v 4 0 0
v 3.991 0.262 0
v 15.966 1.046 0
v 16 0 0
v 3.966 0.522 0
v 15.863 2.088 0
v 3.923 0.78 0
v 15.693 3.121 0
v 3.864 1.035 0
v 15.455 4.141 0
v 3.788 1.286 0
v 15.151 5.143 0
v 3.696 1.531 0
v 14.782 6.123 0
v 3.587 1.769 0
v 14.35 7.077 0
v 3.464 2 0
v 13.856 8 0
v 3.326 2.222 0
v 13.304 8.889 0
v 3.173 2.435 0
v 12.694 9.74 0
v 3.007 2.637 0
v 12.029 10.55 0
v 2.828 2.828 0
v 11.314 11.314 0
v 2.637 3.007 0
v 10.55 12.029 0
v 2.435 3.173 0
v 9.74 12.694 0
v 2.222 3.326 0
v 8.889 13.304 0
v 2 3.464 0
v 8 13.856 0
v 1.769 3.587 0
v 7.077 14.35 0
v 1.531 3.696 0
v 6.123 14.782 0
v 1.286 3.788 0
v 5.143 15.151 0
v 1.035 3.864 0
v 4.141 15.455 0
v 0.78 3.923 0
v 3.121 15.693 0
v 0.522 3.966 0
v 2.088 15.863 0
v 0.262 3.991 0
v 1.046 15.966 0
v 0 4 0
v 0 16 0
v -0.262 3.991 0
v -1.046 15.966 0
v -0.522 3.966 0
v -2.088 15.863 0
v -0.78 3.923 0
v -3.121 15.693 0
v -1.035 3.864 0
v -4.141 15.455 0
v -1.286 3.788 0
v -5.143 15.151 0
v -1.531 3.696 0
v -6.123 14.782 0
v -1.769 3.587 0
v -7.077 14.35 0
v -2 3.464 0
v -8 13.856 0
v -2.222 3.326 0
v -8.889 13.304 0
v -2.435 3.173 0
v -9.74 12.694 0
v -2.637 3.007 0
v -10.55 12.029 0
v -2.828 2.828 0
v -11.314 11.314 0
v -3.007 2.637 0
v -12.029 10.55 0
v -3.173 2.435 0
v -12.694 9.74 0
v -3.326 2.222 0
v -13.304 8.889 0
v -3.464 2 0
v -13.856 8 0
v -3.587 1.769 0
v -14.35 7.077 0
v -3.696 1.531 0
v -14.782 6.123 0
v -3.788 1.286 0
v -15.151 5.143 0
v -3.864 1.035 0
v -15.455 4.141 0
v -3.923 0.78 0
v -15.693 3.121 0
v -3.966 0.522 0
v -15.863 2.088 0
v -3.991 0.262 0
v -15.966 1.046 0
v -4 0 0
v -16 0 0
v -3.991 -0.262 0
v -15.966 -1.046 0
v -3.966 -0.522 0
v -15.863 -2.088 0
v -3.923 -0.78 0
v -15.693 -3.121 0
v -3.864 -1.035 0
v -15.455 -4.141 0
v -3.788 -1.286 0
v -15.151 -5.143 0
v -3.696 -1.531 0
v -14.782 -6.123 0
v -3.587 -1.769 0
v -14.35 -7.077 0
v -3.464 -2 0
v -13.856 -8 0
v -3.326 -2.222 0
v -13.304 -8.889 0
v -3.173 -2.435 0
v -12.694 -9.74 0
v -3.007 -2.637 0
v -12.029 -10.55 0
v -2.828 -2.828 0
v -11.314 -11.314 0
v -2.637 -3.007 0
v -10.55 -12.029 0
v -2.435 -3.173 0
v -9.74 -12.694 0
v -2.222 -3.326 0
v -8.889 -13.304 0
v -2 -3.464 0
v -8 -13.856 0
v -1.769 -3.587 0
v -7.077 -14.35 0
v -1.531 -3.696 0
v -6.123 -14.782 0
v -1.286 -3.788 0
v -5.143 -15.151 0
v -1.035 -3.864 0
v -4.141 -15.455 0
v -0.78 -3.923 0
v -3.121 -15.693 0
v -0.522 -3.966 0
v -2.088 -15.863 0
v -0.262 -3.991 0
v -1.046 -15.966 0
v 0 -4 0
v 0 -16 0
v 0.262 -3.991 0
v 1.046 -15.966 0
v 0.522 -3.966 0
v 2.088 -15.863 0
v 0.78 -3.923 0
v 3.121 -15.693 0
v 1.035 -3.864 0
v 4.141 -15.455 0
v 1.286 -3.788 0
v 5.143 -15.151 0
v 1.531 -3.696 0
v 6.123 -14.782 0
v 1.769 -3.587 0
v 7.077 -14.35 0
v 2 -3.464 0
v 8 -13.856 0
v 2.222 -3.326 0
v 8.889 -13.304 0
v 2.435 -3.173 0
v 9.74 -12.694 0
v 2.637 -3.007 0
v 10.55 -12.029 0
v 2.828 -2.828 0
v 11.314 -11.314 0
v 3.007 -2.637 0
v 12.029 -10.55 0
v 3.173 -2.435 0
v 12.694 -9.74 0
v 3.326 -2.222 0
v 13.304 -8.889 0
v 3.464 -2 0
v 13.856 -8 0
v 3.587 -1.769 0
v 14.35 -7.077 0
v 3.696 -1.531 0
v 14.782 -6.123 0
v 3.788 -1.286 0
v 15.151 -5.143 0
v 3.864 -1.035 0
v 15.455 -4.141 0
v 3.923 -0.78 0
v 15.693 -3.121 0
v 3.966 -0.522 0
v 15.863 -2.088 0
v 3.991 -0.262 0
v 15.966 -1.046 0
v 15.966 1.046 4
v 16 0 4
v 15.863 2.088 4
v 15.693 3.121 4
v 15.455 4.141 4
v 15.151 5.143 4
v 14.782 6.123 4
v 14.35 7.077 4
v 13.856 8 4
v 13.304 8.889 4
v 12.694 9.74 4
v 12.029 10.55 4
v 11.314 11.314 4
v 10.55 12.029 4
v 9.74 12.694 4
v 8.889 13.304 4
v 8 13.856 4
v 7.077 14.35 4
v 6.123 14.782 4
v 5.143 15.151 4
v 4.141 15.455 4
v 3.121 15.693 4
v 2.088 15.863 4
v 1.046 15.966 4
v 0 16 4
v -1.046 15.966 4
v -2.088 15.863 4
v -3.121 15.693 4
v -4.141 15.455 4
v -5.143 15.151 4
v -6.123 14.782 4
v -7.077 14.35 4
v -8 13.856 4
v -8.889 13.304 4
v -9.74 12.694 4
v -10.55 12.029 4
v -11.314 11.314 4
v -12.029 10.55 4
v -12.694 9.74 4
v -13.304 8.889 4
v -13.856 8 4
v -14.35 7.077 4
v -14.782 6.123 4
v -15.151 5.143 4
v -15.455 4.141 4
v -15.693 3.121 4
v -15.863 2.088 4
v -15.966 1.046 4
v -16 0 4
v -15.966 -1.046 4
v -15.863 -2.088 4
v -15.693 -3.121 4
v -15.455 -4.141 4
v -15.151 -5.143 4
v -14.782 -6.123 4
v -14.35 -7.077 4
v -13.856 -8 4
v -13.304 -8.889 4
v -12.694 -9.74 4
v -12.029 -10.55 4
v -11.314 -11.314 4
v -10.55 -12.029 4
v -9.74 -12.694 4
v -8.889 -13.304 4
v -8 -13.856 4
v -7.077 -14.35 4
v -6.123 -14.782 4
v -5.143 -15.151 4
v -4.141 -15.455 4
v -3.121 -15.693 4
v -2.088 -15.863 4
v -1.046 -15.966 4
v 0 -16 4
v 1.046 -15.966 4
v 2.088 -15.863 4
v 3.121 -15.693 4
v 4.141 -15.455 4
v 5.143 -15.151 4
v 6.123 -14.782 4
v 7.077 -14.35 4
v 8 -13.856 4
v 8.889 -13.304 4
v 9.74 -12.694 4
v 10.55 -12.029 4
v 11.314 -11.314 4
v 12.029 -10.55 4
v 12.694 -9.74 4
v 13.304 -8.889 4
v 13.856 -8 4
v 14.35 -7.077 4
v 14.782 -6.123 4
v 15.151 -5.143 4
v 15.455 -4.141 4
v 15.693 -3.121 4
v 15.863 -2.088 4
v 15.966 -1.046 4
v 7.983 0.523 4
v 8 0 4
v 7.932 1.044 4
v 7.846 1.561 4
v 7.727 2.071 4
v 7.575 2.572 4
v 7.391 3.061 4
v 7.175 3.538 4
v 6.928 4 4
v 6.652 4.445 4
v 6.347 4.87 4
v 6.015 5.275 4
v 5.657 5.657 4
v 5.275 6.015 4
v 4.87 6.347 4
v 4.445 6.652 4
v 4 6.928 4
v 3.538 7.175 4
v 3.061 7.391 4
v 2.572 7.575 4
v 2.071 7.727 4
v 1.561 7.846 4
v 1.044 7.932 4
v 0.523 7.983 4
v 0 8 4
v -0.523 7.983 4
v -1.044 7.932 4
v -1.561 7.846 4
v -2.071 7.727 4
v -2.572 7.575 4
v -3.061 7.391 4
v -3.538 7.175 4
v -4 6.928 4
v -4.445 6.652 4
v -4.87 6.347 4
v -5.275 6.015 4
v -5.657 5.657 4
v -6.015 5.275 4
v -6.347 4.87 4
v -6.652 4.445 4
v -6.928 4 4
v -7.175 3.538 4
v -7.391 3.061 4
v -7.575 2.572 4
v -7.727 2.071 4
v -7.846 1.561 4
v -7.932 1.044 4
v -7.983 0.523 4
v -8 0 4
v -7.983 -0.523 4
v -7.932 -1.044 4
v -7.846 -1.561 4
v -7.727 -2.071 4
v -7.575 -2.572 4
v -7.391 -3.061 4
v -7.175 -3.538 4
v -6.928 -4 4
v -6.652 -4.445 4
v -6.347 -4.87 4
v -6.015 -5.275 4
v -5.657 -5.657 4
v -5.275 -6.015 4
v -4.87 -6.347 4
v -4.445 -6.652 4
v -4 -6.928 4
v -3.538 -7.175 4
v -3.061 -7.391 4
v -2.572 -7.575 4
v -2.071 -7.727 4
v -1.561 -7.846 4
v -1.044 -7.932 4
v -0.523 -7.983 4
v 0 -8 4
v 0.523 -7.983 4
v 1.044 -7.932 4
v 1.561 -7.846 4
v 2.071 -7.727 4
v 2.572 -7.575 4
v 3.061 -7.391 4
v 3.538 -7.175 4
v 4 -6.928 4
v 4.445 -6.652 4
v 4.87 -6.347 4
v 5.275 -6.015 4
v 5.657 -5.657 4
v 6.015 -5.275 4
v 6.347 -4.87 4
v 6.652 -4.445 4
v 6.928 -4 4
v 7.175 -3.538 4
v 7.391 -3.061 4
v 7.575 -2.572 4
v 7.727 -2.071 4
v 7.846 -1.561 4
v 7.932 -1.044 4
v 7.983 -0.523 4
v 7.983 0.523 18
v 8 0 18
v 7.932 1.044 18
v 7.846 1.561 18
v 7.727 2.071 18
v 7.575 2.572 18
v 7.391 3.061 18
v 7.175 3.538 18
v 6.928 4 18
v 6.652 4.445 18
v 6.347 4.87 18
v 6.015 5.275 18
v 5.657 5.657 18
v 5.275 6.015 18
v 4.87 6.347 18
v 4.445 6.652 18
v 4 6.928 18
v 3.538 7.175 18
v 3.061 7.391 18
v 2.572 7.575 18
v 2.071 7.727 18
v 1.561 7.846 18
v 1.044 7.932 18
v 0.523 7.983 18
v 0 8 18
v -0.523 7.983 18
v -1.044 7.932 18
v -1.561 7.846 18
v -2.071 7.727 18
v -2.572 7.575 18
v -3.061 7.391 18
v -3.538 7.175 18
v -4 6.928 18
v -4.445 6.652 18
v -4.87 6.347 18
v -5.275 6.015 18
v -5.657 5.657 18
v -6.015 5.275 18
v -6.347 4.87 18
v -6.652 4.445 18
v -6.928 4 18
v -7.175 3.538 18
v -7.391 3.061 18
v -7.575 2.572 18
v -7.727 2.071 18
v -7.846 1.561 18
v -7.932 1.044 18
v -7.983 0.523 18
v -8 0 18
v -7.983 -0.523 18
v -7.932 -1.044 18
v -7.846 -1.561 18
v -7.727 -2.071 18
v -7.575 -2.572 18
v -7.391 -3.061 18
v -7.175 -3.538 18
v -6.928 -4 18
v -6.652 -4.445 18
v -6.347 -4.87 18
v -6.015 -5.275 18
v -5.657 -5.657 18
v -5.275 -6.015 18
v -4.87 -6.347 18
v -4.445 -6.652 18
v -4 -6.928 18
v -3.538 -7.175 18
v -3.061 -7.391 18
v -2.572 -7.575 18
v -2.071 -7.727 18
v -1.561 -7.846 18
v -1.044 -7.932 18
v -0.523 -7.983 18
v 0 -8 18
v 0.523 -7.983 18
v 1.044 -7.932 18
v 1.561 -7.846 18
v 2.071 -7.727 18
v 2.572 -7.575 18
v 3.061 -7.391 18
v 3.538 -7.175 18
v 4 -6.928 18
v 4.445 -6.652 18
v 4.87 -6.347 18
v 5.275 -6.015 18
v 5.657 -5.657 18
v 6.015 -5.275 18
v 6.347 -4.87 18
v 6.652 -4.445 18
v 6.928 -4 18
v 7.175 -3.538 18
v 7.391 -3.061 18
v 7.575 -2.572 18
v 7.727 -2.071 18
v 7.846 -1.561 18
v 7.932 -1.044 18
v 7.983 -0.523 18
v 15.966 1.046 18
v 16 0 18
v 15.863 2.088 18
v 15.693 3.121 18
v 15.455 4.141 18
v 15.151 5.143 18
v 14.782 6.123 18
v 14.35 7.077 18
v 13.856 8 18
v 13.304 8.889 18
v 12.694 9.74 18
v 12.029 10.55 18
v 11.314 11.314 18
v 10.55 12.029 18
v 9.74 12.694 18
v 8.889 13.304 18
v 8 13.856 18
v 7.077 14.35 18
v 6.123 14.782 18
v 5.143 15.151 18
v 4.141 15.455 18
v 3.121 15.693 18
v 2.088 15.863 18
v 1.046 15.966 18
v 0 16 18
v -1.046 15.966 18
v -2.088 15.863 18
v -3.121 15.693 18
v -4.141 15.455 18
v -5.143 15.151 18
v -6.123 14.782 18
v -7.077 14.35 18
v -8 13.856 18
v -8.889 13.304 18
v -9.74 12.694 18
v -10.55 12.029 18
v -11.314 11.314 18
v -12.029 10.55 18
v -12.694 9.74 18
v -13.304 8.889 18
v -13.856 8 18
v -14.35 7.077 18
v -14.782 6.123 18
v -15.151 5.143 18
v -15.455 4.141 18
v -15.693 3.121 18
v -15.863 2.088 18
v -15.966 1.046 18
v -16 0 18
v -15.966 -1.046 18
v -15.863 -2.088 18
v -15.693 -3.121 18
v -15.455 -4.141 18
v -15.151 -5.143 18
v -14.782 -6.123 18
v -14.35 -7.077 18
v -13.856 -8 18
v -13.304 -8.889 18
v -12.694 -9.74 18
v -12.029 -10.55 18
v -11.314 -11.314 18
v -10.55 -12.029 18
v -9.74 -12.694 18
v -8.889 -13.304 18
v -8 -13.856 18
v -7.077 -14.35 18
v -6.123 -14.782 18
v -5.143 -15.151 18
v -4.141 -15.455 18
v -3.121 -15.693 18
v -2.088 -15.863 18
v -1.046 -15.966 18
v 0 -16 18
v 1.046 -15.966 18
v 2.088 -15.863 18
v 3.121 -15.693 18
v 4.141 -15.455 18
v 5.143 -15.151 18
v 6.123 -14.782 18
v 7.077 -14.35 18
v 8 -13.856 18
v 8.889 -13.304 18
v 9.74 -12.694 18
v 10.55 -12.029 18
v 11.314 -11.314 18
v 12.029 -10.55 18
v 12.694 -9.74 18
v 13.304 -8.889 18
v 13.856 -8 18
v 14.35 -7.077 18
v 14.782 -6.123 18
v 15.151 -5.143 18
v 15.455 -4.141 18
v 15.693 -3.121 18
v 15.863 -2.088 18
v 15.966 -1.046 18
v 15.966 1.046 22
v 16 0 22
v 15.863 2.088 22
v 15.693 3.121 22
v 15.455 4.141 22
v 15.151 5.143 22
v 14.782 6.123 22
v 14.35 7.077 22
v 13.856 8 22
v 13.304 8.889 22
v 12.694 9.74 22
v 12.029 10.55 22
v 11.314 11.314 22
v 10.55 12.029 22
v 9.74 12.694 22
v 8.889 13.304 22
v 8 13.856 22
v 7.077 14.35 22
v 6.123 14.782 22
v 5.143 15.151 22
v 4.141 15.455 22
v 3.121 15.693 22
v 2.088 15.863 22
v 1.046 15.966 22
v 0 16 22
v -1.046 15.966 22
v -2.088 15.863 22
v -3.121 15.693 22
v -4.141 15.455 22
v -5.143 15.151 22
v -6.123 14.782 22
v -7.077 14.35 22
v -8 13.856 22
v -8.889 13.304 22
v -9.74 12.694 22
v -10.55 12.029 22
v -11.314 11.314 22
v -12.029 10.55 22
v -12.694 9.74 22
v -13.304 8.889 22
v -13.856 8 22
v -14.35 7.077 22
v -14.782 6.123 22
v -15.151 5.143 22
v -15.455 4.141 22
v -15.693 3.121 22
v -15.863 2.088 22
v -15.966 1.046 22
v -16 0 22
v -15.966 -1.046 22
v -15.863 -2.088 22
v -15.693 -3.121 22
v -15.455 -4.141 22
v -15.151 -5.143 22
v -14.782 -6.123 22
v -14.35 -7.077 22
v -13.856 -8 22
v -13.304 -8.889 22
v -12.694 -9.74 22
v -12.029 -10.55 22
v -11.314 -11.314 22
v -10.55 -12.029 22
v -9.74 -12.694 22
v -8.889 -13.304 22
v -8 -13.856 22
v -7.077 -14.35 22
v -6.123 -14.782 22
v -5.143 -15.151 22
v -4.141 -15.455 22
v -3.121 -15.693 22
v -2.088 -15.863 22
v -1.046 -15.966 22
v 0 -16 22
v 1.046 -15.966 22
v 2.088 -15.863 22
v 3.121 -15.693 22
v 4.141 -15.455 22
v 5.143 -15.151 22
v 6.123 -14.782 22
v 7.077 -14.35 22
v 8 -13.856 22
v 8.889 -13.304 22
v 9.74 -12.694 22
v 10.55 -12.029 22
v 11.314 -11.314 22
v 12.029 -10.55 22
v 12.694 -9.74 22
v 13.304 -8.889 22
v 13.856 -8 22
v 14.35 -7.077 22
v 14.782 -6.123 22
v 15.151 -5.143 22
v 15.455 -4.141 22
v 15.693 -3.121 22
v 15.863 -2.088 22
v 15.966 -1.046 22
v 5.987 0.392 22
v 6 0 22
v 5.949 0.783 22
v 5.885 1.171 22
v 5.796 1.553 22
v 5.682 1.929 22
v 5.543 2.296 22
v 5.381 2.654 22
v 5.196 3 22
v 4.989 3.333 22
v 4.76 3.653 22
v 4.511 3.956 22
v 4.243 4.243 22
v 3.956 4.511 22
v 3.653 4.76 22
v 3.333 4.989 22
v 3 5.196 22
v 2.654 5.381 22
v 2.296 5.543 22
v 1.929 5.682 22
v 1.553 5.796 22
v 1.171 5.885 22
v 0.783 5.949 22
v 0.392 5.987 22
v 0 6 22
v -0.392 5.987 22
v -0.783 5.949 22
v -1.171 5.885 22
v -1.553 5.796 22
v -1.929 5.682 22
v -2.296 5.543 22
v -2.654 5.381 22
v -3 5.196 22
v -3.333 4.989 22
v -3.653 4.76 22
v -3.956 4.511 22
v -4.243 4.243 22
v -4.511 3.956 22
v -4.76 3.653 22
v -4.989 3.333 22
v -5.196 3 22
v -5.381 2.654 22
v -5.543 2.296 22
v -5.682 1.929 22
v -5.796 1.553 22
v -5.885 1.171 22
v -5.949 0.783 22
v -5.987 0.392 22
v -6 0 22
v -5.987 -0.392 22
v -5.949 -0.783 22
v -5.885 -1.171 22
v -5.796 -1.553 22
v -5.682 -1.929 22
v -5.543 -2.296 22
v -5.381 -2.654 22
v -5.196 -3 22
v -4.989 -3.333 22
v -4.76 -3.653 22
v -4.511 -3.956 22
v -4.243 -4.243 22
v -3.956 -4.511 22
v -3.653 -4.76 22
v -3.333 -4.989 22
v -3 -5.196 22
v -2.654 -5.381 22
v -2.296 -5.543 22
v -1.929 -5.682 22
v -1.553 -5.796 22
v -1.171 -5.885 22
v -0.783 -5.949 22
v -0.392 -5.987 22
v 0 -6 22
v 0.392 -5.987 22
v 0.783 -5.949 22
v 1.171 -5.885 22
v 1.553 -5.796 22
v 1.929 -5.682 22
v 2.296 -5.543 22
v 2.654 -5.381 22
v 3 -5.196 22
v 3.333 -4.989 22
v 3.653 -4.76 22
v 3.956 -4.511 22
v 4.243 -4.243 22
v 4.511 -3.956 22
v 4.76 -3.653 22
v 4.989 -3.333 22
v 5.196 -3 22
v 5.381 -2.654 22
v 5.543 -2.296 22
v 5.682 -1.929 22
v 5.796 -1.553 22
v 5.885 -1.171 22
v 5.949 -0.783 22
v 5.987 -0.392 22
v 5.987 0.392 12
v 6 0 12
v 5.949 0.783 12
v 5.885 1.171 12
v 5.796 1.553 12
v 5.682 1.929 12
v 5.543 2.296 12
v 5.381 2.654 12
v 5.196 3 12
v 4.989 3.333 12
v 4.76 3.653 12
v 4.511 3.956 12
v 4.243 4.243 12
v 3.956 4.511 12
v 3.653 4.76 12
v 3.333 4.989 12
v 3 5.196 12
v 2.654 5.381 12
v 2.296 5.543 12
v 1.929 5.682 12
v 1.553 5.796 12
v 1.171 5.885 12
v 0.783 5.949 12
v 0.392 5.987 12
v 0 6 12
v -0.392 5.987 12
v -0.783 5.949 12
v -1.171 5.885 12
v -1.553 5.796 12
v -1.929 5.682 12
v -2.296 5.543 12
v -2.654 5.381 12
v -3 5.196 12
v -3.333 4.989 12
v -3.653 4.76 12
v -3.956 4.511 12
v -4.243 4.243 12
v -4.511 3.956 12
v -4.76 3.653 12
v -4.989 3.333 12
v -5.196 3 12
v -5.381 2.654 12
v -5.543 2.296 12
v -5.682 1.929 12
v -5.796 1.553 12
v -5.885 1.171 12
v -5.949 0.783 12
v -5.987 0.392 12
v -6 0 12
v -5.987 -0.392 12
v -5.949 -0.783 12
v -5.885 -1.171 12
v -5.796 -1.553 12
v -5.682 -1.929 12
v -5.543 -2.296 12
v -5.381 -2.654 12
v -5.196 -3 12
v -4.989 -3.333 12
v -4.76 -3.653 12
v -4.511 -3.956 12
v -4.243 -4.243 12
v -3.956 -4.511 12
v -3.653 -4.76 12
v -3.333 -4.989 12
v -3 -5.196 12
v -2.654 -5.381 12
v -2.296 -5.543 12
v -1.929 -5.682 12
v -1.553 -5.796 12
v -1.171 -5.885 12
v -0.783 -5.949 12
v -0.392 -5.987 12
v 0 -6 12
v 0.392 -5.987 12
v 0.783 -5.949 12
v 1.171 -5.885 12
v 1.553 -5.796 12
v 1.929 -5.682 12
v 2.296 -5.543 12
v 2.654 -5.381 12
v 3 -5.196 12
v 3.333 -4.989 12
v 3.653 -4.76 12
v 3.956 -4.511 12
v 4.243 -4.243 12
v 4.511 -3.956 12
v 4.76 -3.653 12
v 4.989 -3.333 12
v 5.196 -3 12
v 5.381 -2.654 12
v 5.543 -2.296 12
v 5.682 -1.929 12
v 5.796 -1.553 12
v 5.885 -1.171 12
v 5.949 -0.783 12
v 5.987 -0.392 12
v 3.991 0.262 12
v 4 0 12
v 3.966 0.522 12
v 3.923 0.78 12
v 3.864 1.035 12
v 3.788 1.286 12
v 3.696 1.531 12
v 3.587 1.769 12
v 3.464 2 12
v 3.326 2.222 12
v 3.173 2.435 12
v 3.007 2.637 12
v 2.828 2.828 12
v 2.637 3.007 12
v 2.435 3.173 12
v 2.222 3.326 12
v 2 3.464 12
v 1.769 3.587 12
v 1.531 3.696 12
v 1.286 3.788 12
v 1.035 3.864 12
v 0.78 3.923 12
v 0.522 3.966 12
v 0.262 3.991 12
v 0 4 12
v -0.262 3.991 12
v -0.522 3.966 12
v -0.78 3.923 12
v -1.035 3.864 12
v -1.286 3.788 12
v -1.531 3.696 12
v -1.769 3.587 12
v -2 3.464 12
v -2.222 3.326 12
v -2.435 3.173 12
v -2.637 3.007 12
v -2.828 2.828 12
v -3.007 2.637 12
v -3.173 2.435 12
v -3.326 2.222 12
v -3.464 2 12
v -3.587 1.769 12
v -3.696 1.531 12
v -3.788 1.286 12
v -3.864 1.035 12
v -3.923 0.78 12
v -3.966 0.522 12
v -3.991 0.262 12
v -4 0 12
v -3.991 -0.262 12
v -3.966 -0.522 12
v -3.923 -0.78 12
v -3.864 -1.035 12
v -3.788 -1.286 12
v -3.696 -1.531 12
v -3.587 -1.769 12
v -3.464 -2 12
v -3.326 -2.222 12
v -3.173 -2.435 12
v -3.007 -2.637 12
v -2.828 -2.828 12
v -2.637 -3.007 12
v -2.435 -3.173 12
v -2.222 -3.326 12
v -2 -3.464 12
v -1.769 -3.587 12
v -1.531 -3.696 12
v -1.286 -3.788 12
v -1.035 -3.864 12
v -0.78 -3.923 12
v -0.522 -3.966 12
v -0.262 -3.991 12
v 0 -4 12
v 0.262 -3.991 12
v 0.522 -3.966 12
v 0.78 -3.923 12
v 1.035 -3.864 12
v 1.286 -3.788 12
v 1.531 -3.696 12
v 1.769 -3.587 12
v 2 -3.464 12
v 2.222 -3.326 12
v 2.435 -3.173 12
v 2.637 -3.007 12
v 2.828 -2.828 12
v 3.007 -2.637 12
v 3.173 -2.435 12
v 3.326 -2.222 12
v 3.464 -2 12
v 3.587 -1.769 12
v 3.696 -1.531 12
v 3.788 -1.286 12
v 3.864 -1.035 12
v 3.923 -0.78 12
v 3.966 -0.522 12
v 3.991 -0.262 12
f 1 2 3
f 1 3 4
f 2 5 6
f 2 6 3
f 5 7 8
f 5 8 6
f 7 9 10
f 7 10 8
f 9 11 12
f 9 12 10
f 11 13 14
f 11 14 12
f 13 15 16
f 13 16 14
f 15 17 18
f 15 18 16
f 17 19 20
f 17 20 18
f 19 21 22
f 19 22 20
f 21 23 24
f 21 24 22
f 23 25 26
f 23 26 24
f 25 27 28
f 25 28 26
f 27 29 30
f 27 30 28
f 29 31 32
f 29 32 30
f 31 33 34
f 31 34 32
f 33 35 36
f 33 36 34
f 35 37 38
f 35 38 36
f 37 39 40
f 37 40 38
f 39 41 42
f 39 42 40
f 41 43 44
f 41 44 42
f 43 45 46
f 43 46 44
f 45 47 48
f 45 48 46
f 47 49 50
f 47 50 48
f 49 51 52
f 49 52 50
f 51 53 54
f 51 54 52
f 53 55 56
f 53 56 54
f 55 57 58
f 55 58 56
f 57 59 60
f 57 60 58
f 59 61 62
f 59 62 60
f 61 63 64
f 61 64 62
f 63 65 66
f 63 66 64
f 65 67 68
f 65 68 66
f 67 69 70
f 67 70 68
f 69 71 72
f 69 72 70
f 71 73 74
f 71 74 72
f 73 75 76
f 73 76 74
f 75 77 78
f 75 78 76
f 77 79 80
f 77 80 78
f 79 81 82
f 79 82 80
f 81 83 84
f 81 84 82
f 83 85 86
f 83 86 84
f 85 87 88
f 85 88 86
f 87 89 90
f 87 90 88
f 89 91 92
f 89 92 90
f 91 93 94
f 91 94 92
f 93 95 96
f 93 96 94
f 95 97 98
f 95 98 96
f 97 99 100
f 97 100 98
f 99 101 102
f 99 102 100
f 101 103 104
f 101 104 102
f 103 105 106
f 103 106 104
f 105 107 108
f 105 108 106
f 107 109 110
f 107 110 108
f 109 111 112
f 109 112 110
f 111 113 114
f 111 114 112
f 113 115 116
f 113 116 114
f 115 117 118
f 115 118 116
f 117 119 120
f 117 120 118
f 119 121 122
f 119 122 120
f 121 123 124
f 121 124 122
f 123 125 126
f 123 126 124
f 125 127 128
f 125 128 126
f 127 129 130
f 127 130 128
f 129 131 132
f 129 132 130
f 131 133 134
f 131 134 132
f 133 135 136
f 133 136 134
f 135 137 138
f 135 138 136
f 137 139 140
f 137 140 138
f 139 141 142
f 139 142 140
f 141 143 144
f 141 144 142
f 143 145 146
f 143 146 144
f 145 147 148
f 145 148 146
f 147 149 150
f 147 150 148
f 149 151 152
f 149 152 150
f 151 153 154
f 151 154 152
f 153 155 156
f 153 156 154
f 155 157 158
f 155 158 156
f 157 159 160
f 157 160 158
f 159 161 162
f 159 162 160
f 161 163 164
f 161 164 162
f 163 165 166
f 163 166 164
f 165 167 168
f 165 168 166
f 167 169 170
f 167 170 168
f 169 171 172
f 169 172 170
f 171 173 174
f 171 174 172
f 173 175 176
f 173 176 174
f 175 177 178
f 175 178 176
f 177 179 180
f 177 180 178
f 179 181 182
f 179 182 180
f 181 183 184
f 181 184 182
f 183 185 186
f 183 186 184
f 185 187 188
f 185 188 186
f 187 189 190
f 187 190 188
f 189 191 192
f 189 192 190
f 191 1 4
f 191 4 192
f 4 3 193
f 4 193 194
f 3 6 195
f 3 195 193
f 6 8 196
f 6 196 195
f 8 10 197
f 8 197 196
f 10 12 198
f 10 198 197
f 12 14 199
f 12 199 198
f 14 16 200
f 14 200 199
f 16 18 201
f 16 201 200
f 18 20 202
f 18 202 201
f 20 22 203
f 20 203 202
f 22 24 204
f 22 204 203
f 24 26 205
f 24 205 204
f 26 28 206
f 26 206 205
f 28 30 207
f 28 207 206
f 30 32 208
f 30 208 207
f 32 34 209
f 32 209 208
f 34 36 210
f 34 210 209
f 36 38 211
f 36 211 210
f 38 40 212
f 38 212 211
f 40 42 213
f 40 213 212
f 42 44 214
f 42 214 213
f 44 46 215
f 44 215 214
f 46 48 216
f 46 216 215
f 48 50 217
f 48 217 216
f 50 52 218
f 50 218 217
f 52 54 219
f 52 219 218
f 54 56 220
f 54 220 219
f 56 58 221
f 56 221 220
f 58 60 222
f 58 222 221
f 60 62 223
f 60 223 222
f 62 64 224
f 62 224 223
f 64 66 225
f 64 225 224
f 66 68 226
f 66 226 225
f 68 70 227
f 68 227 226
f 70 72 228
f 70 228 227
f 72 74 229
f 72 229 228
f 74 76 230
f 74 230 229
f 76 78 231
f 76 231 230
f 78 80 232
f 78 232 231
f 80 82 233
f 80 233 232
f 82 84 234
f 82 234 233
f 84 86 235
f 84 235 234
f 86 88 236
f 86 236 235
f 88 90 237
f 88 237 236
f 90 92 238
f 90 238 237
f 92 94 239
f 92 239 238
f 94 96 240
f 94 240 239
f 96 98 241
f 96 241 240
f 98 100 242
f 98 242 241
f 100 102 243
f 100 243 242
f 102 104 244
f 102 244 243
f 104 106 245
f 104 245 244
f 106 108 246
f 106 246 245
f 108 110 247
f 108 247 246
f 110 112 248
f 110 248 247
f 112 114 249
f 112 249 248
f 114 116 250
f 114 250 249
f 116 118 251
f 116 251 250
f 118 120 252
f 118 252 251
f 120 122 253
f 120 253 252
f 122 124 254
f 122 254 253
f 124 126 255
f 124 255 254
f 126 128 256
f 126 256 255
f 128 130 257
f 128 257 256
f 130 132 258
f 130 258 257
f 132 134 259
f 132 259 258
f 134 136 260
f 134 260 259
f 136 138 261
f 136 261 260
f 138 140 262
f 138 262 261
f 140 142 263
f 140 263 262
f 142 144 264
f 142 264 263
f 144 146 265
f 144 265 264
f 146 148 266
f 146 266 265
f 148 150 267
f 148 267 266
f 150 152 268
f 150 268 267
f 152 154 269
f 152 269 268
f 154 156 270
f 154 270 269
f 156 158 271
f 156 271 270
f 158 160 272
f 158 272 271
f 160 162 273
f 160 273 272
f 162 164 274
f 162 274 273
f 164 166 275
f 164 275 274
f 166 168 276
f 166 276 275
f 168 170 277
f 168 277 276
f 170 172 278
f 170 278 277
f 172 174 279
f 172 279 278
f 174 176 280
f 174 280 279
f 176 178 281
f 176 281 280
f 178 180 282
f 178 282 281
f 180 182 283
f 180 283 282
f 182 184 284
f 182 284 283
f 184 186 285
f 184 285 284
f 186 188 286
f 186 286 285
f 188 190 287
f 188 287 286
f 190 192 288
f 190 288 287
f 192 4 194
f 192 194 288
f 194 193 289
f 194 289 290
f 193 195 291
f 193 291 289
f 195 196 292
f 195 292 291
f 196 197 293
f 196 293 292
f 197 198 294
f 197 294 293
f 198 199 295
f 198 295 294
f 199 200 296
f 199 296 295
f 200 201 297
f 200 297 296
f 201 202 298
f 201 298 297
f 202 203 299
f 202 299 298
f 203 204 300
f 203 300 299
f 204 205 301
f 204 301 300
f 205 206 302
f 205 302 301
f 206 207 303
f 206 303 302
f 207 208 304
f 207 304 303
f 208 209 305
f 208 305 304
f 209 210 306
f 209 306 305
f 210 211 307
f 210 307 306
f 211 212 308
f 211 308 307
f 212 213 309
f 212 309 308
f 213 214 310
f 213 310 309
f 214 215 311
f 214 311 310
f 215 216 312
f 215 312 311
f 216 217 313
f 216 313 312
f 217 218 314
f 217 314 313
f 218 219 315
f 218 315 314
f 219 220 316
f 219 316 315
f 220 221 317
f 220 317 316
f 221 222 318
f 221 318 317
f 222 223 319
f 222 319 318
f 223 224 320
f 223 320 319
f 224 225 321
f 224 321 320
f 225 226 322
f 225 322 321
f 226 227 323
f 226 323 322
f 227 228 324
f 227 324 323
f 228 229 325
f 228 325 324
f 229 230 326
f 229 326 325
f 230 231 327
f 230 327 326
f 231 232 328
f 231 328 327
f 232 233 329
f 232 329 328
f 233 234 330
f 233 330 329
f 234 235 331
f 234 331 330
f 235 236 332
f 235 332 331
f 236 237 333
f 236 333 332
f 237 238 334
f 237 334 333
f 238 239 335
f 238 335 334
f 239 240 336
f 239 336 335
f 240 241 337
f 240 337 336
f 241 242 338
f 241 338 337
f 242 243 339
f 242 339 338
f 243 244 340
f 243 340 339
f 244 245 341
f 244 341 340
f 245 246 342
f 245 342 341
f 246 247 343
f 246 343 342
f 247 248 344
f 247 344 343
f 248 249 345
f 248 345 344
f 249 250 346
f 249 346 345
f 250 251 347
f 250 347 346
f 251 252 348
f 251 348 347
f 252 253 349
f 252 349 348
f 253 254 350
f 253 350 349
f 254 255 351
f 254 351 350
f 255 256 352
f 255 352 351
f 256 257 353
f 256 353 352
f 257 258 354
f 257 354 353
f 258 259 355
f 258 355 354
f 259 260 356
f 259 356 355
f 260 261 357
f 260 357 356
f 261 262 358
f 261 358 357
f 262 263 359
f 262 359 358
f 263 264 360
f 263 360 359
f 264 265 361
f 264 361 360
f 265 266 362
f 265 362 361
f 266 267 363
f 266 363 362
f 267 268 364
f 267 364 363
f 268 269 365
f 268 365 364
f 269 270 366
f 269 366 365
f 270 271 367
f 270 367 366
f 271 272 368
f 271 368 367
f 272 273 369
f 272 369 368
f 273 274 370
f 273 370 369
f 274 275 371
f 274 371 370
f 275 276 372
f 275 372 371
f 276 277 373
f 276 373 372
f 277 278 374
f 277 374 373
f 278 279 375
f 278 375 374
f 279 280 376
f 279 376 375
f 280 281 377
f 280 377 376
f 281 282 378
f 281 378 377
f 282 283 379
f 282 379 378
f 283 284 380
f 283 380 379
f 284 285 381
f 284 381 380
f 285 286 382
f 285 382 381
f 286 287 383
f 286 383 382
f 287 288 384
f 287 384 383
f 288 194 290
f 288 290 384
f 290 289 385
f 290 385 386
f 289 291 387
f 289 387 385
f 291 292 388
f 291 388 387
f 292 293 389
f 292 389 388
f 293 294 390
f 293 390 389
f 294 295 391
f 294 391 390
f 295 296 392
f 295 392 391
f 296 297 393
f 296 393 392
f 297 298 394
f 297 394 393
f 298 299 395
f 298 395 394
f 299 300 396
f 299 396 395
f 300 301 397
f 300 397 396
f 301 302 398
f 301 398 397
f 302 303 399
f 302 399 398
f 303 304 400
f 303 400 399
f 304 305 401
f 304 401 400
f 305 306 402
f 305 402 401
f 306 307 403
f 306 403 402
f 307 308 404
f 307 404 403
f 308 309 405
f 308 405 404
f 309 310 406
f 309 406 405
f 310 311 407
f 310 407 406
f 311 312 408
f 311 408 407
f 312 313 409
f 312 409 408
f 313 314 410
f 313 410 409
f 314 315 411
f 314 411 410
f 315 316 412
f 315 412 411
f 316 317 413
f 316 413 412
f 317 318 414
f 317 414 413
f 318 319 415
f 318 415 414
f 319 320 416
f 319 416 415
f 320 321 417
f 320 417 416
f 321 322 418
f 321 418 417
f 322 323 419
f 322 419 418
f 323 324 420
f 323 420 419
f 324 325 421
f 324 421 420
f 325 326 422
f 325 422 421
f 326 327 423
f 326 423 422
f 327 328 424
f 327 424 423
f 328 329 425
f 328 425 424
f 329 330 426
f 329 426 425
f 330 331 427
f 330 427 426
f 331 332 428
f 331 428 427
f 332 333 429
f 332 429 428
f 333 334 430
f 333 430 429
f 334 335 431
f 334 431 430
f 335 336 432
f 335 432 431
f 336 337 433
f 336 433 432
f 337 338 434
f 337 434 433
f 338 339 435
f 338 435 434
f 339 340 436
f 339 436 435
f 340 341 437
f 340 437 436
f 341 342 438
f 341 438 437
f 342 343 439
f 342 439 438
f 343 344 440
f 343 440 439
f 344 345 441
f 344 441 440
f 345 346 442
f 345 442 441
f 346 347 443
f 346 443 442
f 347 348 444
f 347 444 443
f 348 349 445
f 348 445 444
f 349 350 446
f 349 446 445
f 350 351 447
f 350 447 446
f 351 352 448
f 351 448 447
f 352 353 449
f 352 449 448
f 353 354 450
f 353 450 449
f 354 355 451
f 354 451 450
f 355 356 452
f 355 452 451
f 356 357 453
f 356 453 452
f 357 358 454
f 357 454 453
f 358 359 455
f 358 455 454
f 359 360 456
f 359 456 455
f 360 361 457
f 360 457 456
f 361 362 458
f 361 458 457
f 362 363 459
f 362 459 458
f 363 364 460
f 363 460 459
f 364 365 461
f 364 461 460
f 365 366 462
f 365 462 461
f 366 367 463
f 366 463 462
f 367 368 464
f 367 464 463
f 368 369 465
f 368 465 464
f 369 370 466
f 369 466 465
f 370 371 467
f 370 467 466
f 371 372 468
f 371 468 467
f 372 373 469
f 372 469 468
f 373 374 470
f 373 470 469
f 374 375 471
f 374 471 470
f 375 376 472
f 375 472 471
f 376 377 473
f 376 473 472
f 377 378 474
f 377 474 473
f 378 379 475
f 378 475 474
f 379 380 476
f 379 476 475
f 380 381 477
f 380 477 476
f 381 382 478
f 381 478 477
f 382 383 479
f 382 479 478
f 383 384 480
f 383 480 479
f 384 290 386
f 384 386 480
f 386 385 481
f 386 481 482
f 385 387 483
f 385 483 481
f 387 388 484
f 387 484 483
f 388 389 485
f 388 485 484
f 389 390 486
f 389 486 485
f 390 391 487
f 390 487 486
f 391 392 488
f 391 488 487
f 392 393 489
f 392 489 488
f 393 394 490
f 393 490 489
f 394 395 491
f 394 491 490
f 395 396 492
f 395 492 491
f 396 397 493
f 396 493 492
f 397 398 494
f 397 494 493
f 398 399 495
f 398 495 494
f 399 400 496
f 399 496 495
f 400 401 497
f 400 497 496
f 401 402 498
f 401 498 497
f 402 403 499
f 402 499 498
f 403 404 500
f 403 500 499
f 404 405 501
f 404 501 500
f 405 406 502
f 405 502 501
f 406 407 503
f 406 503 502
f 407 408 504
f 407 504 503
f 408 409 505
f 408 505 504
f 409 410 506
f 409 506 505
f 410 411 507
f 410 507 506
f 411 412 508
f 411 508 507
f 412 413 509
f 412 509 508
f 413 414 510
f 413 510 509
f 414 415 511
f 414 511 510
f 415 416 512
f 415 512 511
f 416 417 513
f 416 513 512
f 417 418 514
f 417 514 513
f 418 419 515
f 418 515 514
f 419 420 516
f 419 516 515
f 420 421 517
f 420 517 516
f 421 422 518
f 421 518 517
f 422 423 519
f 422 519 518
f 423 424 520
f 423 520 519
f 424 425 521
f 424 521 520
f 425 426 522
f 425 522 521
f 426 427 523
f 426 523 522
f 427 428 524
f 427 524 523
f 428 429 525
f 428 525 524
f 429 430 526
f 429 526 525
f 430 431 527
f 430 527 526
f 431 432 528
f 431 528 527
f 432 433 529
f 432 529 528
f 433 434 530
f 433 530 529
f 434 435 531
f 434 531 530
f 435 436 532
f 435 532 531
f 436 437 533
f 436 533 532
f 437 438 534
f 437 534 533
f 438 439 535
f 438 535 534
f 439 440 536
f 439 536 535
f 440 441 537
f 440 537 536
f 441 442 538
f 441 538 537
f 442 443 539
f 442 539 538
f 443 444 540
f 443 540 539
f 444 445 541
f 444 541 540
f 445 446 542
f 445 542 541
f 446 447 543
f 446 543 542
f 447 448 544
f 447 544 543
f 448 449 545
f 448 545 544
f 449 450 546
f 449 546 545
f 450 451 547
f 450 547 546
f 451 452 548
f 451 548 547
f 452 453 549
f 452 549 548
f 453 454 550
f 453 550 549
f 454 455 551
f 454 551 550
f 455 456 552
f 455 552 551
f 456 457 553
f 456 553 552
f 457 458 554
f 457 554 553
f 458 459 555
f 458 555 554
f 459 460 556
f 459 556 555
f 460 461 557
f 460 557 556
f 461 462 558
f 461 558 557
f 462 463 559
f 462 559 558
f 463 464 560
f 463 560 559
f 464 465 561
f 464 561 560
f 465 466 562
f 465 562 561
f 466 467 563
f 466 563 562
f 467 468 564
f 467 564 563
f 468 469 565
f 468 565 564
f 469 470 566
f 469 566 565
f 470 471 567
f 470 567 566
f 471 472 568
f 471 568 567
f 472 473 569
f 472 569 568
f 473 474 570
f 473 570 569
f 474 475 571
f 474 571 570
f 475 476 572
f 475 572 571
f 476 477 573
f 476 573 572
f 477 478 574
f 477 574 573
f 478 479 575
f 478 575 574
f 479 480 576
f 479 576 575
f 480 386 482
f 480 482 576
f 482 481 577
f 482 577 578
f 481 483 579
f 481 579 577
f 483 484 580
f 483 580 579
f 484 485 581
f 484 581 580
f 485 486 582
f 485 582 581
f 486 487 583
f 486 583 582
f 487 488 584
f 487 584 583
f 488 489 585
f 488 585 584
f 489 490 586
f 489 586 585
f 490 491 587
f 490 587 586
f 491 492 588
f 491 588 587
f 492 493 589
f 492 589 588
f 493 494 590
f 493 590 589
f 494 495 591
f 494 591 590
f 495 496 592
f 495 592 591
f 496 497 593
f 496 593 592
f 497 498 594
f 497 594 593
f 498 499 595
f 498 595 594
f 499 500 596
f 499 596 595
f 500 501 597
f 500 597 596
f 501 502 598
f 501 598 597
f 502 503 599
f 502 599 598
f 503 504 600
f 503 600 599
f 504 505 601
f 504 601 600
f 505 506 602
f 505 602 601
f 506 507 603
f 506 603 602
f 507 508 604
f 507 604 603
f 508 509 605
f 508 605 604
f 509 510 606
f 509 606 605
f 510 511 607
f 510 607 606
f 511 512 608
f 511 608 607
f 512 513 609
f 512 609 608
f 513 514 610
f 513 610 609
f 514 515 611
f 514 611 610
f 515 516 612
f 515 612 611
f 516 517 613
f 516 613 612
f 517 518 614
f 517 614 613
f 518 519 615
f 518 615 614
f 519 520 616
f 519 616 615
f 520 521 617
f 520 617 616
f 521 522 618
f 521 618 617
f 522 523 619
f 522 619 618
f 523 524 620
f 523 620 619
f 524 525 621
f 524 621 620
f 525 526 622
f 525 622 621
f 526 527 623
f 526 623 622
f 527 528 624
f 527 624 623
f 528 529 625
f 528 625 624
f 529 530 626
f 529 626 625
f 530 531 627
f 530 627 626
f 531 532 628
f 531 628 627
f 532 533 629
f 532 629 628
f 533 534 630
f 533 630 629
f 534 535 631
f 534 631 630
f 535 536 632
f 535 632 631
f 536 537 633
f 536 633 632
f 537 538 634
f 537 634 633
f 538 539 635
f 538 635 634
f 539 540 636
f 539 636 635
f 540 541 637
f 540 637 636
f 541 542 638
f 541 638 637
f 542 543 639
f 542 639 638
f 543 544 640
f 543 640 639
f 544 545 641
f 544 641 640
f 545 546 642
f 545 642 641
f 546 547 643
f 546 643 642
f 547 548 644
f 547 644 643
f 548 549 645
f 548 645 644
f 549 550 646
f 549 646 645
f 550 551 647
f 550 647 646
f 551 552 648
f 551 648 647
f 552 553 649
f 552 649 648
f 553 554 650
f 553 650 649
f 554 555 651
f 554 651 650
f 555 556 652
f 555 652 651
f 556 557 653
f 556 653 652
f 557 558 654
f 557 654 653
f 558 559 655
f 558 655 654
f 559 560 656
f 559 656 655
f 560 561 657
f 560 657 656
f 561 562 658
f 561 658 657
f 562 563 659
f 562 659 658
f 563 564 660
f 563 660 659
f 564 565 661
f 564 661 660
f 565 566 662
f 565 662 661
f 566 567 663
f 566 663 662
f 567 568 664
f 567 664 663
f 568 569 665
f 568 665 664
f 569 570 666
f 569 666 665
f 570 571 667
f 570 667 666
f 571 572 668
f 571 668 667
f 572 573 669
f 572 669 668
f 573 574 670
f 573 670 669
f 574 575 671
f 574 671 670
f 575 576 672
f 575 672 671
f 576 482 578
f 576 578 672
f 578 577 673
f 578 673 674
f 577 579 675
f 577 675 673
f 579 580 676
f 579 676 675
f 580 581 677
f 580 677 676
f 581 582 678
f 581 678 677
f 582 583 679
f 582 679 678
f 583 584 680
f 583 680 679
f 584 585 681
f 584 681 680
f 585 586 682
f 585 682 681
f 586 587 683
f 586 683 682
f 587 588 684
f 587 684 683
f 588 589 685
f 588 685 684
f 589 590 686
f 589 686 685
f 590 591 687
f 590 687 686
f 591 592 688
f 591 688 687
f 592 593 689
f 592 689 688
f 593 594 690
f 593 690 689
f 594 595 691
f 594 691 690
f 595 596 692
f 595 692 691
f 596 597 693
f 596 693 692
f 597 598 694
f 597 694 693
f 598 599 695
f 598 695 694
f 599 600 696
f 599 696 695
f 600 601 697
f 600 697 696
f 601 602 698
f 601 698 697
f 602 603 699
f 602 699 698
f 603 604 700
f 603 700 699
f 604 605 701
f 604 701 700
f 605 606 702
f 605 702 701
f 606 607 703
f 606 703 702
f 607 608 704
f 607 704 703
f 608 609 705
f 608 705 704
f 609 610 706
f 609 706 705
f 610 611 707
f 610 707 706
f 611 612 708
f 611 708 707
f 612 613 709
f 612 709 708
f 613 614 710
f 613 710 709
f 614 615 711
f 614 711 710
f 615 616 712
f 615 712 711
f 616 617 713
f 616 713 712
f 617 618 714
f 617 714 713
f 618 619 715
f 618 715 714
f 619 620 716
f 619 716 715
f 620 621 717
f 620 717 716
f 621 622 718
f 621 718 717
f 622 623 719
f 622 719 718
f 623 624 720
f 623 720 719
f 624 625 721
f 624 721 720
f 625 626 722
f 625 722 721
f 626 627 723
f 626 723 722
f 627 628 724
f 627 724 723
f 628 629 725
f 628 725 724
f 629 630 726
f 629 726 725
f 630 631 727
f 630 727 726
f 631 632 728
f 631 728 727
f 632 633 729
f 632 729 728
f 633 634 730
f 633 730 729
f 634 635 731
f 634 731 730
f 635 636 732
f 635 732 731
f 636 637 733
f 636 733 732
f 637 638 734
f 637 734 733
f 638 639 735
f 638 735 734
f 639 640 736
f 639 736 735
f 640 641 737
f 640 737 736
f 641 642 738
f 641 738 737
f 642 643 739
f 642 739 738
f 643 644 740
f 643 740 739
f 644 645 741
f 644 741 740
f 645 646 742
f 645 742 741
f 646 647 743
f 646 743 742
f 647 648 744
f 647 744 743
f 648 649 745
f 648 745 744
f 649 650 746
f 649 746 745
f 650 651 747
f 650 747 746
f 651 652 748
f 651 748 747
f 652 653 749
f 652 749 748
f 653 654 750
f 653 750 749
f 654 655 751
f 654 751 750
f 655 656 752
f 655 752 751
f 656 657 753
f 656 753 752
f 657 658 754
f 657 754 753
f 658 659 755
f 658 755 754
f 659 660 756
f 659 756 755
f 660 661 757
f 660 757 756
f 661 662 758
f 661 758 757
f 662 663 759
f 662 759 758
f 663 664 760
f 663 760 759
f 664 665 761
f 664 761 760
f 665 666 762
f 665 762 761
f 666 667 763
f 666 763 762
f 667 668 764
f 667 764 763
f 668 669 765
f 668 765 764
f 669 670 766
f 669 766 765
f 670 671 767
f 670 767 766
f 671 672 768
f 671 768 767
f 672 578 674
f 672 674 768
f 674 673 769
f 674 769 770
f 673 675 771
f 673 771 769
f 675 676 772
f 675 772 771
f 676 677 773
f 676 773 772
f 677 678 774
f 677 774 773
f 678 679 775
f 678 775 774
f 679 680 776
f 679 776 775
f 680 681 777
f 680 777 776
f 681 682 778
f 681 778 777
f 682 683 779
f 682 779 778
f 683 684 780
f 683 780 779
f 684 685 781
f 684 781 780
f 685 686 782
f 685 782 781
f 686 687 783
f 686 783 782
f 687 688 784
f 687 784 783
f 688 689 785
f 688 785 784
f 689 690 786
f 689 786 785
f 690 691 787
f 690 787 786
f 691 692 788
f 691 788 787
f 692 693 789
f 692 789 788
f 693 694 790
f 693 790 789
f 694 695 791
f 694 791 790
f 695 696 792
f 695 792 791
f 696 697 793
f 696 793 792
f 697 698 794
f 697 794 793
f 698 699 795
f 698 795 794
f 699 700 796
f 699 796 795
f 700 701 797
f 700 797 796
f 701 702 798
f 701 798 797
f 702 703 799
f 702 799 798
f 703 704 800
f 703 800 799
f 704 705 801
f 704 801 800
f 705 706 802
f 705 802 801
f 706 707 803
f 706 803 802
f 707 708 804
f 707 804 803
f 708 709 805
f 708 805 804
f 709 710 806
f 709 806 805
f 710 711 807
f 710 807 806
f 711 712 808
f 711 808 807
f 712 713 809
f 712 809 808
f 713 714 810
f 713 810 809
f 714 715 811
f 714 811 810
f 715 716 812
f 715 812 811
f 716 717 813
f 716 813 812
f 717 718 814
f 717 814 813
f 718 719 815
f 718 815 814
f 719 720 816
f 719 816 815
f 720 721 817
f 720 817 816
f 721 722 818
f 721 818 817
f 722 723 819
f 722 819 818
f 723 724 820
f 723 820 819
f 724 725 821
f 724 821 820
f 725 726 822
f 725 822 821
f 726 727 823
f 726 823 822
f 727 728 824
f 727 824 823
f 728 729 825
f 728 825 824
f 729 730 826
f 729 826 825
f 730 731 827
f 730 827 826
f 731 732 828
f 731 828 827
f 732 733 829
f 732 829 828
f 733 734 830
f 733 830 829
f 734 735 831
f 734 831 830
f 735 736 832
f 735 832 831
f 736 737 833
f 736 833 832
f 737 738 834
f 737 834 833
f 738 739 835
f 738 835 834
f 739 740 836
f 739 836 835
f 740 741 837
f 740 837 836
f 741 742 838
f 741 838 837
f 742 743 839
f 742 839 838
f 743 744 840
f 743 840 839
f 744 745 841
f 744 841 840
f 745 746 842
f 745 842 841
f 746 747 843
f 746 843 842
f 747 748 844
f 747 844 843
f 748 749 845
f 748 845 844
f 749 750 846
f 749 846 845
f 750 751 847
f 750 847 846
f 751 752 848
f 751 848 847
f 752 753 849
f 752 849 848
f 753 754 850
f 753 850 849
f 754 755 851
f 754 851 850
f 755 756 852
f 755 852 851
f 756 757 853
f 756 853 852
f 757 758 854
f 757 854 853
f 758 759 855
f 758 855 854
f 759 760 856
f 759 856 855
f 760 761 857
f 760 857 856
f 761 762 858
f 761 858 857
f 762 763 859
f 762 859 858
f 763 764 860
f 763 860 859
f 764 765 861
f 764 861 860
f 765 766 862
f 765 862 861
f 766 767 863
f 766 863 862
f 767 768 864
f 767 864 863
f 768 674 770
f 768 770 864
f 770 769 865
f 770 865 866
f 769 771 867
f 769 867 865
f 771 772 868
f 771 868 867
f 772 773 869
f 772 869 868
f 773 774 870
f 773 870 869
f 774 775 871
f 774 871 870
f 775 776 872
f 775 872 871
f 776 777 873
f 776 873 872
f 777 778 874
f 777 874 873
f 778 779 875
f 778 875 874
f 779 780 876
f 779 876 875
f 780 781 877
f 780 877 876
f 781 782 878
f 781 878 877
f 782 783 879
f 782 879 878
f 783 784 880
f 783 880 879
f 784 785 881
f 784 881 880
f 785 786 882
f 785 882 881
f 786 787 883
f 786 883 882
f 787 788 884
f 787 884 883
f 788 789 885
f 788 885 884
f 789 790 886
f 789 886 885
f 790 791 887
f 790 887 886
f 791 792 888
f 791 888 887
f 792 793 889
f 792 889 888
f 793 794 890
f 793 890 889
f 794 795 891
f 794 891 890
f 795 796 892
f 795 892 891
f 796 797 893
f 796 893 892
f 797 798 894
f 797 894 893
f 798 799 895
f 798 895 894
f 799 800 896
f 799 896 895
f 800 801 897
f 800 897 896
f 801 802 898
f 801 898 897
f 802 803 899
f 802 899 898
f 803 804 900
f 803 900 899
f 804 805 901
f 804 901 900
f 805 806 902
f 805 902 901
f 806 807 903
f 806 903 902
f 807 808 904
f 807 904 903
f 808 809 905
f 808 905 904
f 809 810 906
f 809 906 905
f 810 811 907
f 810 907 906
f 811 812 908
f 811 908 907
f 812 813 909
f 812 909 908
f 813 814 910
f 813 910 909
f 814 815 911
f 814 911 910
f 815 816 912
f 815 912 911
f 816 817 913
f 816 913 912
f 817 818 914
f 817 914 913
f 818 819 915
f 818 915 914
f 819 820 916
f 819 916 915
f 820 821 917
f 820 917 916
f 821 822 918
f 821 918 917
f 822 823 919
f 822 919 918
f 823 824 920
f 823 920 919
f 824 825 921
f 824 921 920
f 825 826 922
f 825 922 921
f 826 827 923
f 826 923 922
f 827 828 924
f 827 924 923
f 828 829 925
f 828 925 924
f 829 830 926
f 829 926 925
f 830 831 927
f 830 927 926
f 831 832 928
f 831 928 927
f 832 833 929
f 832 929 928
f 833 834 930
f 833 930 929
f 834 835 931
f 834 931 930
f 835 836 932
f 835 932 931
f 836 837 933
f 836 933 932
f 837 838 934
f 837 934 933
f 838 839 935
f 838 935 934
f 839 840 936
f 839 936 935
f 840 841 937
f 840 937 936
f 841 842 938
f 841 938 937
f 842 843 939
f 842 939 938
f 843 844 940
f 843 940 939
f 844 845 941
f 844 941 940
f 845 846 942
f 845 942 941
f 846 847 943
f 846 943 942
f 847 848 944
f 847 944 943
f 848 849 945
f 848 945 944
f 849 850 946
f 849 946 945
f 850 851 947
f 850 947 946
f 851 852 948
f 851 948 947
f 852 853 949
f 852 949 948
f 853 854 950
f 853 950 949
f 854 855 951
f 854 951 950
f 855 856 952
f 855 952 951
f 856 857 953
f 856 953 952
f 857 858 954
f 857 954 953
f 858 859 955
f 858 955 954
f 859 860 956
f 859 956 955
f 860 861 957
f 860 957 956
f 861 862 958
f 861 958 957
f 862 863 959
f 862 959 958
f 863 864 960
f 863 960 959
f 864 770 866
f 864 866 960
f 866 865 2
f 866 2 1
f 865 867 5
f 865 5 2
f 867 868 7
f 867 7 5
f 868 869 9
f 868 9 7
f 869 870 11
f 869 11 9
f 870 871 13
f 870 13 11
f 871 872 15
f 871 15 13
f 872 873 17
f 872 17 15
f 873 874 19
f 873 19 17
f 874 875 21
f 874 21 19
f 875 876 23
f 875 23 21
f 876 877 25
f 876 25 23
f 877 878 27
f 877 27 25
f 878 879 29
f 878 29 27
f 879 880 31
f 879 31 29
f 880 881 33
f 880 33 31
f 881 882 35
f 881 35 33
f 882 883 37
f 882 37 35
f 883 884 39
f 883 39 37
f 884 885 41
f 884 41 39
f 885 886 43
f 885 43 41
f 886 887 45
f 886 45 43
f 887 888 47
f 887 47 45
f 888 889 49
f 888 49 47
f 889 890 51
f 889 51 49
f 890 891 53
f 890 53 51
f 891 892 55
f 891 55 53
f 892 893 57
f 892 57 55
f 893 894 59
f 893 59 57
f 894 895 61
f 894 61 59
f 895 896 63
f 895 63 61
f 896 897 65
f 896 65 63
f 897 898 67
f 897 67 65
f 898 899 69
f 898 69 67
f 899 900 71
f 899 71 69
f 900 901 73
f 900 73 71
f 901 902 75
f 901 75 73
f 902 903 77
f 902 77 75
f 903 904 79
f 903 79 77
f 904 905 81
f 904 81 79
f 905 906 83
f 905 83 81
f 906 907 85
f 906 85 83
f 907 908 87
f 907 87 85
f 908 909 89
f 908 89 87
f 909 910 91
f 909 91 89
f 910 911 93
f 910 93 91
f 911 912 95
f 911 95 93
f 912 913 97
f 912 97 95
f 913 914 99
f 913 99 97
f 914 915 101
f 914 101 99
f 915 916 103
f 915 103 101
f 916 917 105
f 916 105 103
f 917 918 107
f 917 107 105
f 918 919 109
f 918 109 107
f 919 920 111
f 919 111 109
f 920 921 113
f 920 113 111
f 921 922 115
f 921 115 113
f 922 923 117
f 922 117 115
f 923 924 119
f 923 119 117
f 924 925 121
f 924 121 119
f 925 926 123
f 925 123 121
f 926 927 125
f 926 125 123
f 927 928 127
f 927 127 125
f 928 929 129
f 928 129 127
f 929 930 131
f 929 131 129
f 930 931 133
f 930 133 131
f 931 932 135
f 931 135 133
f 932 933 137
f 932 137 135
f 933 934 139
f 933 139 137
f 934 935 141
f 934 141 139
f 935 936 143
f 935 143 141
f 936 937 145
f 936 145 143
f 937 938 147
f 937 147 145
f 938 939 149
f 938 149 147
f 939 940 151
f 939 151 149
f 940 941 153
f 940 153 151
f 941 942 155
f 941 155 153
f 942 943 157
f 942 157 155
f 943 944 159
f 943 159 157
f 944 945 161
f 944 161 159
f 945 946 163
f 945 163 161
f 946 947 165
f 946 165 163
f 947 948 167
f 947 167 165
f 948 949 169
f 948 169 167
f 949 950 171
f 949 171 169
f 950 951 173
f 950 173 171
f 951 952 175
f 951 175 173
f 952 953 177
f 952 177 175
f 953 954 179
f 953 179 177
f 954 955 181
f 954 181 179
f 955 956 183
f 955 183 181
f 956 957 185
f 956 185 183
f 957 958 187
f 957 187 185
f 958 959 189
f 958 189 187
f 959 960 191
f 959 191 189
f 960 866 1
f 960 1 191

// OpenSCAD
// Original MechIntel educational model. CC0-1.0. Units: mm.
// Not a standardized or load-rated component.
$fn=96;
// Section points: [radius, height], mm. Edit to change the profile.
section=[[4, 0], [16, 0], [16, 4], [8, 4], [8, 18], [16, 18], [16, 22], [6, 22], [6, 12], [4, 12]];
rotate_extrude($fn=96) polygon(points=section);
